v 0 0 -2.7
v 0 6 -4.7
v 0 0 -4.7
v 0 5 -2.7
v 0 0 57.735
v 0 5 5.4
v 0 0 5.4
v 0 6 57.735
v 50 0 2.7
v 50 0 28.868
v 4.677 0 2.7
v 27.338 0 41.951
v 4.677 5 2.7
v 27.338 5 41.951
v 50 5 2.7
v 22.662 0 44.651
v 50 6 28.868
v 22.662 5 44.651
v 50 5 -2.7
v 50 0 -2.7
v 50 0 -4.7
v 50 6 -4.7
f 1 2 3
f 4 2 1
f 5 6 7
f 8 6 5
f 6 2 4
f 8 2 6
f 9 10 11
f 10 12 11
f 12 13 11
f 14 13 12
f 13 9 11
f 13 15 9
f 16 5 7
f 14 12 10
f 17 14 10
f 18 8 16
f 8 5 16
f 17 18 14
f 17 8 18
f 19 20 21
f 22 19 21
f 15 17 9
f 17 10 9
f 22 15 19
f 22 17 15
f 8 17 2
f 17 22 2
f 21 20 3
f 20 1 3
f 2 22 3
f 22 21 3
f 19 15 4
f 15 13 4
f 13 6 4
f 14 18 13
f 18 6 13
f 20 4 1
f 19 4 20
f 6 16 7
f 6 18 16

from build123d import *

# Parameters (mm, degrees)
BOSS_EXTRUDE1_DEPTH     = 6
SKETCH2_W               = 100
SKETCH2_H               = 5.4
CUT_EXTRUDE_THIN1_DEPTH = 5
SKETCH3_OUTSIDE_W       = 132.574
SKETCH3_OUTSIDE_H       = 148.044
CUT_EXTRUDE1_DEPTH      = 6
INTERSECT1_START        = -50
INTERSECT1_DEPTH        = 50


# Read off the part's stored shape, not the designer's step: Intersect1
with BuildPart() as part:
    # Sketch1 → Boss-Extrude1 (new body)
    with BuildSketch(Plane(origin=(0, 0, 0), x_dir=(1, 0, 0), z_dir=(0, 1, 0))):
        Polygon((0, 57.735026919), (-50, 28.867513459), (-50, -28.867513459), (0, -57.735026919), (50, -28.867513459), (50, 28.867513459), align=None)
    extrude(amount=BOSS_EXTRUDE1_DEPTH)

    # Sketch2 → Cut-Extrude-Thin1 (cut)
    with BuildSketch(Plane.XZ):
        Polygon((-27.33826859, 41.951270189), (-3.33826859, 0.382050808), (1.33826859, 3.082050808), (-22.66173141, 44.651270189), align=None)
        Rectangle(SKETCH2_W, SKETCH2_H)
        Polygon((22.66173141, 44.651270189), (-1.33826859, 3.082050808), (3.33826859, 0.382050808), (27.33826859, 41.951270189), align=None)
    extrude(amount=-CUT_EXTRUDE_THIN1_DEPTH, mode=Mode.SUBTRACT)

    # Sketch3 outside → Cut-Extrude1 (cut)
    with BuildSketch(Plane.XZ):
        Rectangle(SKETCH3_OUTSIDE_W, SKETCH3_OUTSIDE_H)
        Polygon((-50, 28.867513459), (0, 57.735026919), (50, 28.867513459), (50, -4.7), (-50, -4.7), align=None, mode=Mode.SUBTRACT)
    extrude(amount=-CUT_EXTRUDE1_DEPTH, mode=Mode.SUBTRACT)

    # Intersect1 outline → Intersect1 (cut)
    with BuildSketch(Plane.YZ.offset(INTERSECT1_START)):
        Polygon((0, -2.7), (0, -4.7), (6, -4.7), (6, 59), (0, 59), (0, 2.7), (5, 2.7), (5, -2.7), align=None)
    extrude(amount=INTERSECT1_DEPTH, mode=Mode.SUBTRACT)


solid = part.part
